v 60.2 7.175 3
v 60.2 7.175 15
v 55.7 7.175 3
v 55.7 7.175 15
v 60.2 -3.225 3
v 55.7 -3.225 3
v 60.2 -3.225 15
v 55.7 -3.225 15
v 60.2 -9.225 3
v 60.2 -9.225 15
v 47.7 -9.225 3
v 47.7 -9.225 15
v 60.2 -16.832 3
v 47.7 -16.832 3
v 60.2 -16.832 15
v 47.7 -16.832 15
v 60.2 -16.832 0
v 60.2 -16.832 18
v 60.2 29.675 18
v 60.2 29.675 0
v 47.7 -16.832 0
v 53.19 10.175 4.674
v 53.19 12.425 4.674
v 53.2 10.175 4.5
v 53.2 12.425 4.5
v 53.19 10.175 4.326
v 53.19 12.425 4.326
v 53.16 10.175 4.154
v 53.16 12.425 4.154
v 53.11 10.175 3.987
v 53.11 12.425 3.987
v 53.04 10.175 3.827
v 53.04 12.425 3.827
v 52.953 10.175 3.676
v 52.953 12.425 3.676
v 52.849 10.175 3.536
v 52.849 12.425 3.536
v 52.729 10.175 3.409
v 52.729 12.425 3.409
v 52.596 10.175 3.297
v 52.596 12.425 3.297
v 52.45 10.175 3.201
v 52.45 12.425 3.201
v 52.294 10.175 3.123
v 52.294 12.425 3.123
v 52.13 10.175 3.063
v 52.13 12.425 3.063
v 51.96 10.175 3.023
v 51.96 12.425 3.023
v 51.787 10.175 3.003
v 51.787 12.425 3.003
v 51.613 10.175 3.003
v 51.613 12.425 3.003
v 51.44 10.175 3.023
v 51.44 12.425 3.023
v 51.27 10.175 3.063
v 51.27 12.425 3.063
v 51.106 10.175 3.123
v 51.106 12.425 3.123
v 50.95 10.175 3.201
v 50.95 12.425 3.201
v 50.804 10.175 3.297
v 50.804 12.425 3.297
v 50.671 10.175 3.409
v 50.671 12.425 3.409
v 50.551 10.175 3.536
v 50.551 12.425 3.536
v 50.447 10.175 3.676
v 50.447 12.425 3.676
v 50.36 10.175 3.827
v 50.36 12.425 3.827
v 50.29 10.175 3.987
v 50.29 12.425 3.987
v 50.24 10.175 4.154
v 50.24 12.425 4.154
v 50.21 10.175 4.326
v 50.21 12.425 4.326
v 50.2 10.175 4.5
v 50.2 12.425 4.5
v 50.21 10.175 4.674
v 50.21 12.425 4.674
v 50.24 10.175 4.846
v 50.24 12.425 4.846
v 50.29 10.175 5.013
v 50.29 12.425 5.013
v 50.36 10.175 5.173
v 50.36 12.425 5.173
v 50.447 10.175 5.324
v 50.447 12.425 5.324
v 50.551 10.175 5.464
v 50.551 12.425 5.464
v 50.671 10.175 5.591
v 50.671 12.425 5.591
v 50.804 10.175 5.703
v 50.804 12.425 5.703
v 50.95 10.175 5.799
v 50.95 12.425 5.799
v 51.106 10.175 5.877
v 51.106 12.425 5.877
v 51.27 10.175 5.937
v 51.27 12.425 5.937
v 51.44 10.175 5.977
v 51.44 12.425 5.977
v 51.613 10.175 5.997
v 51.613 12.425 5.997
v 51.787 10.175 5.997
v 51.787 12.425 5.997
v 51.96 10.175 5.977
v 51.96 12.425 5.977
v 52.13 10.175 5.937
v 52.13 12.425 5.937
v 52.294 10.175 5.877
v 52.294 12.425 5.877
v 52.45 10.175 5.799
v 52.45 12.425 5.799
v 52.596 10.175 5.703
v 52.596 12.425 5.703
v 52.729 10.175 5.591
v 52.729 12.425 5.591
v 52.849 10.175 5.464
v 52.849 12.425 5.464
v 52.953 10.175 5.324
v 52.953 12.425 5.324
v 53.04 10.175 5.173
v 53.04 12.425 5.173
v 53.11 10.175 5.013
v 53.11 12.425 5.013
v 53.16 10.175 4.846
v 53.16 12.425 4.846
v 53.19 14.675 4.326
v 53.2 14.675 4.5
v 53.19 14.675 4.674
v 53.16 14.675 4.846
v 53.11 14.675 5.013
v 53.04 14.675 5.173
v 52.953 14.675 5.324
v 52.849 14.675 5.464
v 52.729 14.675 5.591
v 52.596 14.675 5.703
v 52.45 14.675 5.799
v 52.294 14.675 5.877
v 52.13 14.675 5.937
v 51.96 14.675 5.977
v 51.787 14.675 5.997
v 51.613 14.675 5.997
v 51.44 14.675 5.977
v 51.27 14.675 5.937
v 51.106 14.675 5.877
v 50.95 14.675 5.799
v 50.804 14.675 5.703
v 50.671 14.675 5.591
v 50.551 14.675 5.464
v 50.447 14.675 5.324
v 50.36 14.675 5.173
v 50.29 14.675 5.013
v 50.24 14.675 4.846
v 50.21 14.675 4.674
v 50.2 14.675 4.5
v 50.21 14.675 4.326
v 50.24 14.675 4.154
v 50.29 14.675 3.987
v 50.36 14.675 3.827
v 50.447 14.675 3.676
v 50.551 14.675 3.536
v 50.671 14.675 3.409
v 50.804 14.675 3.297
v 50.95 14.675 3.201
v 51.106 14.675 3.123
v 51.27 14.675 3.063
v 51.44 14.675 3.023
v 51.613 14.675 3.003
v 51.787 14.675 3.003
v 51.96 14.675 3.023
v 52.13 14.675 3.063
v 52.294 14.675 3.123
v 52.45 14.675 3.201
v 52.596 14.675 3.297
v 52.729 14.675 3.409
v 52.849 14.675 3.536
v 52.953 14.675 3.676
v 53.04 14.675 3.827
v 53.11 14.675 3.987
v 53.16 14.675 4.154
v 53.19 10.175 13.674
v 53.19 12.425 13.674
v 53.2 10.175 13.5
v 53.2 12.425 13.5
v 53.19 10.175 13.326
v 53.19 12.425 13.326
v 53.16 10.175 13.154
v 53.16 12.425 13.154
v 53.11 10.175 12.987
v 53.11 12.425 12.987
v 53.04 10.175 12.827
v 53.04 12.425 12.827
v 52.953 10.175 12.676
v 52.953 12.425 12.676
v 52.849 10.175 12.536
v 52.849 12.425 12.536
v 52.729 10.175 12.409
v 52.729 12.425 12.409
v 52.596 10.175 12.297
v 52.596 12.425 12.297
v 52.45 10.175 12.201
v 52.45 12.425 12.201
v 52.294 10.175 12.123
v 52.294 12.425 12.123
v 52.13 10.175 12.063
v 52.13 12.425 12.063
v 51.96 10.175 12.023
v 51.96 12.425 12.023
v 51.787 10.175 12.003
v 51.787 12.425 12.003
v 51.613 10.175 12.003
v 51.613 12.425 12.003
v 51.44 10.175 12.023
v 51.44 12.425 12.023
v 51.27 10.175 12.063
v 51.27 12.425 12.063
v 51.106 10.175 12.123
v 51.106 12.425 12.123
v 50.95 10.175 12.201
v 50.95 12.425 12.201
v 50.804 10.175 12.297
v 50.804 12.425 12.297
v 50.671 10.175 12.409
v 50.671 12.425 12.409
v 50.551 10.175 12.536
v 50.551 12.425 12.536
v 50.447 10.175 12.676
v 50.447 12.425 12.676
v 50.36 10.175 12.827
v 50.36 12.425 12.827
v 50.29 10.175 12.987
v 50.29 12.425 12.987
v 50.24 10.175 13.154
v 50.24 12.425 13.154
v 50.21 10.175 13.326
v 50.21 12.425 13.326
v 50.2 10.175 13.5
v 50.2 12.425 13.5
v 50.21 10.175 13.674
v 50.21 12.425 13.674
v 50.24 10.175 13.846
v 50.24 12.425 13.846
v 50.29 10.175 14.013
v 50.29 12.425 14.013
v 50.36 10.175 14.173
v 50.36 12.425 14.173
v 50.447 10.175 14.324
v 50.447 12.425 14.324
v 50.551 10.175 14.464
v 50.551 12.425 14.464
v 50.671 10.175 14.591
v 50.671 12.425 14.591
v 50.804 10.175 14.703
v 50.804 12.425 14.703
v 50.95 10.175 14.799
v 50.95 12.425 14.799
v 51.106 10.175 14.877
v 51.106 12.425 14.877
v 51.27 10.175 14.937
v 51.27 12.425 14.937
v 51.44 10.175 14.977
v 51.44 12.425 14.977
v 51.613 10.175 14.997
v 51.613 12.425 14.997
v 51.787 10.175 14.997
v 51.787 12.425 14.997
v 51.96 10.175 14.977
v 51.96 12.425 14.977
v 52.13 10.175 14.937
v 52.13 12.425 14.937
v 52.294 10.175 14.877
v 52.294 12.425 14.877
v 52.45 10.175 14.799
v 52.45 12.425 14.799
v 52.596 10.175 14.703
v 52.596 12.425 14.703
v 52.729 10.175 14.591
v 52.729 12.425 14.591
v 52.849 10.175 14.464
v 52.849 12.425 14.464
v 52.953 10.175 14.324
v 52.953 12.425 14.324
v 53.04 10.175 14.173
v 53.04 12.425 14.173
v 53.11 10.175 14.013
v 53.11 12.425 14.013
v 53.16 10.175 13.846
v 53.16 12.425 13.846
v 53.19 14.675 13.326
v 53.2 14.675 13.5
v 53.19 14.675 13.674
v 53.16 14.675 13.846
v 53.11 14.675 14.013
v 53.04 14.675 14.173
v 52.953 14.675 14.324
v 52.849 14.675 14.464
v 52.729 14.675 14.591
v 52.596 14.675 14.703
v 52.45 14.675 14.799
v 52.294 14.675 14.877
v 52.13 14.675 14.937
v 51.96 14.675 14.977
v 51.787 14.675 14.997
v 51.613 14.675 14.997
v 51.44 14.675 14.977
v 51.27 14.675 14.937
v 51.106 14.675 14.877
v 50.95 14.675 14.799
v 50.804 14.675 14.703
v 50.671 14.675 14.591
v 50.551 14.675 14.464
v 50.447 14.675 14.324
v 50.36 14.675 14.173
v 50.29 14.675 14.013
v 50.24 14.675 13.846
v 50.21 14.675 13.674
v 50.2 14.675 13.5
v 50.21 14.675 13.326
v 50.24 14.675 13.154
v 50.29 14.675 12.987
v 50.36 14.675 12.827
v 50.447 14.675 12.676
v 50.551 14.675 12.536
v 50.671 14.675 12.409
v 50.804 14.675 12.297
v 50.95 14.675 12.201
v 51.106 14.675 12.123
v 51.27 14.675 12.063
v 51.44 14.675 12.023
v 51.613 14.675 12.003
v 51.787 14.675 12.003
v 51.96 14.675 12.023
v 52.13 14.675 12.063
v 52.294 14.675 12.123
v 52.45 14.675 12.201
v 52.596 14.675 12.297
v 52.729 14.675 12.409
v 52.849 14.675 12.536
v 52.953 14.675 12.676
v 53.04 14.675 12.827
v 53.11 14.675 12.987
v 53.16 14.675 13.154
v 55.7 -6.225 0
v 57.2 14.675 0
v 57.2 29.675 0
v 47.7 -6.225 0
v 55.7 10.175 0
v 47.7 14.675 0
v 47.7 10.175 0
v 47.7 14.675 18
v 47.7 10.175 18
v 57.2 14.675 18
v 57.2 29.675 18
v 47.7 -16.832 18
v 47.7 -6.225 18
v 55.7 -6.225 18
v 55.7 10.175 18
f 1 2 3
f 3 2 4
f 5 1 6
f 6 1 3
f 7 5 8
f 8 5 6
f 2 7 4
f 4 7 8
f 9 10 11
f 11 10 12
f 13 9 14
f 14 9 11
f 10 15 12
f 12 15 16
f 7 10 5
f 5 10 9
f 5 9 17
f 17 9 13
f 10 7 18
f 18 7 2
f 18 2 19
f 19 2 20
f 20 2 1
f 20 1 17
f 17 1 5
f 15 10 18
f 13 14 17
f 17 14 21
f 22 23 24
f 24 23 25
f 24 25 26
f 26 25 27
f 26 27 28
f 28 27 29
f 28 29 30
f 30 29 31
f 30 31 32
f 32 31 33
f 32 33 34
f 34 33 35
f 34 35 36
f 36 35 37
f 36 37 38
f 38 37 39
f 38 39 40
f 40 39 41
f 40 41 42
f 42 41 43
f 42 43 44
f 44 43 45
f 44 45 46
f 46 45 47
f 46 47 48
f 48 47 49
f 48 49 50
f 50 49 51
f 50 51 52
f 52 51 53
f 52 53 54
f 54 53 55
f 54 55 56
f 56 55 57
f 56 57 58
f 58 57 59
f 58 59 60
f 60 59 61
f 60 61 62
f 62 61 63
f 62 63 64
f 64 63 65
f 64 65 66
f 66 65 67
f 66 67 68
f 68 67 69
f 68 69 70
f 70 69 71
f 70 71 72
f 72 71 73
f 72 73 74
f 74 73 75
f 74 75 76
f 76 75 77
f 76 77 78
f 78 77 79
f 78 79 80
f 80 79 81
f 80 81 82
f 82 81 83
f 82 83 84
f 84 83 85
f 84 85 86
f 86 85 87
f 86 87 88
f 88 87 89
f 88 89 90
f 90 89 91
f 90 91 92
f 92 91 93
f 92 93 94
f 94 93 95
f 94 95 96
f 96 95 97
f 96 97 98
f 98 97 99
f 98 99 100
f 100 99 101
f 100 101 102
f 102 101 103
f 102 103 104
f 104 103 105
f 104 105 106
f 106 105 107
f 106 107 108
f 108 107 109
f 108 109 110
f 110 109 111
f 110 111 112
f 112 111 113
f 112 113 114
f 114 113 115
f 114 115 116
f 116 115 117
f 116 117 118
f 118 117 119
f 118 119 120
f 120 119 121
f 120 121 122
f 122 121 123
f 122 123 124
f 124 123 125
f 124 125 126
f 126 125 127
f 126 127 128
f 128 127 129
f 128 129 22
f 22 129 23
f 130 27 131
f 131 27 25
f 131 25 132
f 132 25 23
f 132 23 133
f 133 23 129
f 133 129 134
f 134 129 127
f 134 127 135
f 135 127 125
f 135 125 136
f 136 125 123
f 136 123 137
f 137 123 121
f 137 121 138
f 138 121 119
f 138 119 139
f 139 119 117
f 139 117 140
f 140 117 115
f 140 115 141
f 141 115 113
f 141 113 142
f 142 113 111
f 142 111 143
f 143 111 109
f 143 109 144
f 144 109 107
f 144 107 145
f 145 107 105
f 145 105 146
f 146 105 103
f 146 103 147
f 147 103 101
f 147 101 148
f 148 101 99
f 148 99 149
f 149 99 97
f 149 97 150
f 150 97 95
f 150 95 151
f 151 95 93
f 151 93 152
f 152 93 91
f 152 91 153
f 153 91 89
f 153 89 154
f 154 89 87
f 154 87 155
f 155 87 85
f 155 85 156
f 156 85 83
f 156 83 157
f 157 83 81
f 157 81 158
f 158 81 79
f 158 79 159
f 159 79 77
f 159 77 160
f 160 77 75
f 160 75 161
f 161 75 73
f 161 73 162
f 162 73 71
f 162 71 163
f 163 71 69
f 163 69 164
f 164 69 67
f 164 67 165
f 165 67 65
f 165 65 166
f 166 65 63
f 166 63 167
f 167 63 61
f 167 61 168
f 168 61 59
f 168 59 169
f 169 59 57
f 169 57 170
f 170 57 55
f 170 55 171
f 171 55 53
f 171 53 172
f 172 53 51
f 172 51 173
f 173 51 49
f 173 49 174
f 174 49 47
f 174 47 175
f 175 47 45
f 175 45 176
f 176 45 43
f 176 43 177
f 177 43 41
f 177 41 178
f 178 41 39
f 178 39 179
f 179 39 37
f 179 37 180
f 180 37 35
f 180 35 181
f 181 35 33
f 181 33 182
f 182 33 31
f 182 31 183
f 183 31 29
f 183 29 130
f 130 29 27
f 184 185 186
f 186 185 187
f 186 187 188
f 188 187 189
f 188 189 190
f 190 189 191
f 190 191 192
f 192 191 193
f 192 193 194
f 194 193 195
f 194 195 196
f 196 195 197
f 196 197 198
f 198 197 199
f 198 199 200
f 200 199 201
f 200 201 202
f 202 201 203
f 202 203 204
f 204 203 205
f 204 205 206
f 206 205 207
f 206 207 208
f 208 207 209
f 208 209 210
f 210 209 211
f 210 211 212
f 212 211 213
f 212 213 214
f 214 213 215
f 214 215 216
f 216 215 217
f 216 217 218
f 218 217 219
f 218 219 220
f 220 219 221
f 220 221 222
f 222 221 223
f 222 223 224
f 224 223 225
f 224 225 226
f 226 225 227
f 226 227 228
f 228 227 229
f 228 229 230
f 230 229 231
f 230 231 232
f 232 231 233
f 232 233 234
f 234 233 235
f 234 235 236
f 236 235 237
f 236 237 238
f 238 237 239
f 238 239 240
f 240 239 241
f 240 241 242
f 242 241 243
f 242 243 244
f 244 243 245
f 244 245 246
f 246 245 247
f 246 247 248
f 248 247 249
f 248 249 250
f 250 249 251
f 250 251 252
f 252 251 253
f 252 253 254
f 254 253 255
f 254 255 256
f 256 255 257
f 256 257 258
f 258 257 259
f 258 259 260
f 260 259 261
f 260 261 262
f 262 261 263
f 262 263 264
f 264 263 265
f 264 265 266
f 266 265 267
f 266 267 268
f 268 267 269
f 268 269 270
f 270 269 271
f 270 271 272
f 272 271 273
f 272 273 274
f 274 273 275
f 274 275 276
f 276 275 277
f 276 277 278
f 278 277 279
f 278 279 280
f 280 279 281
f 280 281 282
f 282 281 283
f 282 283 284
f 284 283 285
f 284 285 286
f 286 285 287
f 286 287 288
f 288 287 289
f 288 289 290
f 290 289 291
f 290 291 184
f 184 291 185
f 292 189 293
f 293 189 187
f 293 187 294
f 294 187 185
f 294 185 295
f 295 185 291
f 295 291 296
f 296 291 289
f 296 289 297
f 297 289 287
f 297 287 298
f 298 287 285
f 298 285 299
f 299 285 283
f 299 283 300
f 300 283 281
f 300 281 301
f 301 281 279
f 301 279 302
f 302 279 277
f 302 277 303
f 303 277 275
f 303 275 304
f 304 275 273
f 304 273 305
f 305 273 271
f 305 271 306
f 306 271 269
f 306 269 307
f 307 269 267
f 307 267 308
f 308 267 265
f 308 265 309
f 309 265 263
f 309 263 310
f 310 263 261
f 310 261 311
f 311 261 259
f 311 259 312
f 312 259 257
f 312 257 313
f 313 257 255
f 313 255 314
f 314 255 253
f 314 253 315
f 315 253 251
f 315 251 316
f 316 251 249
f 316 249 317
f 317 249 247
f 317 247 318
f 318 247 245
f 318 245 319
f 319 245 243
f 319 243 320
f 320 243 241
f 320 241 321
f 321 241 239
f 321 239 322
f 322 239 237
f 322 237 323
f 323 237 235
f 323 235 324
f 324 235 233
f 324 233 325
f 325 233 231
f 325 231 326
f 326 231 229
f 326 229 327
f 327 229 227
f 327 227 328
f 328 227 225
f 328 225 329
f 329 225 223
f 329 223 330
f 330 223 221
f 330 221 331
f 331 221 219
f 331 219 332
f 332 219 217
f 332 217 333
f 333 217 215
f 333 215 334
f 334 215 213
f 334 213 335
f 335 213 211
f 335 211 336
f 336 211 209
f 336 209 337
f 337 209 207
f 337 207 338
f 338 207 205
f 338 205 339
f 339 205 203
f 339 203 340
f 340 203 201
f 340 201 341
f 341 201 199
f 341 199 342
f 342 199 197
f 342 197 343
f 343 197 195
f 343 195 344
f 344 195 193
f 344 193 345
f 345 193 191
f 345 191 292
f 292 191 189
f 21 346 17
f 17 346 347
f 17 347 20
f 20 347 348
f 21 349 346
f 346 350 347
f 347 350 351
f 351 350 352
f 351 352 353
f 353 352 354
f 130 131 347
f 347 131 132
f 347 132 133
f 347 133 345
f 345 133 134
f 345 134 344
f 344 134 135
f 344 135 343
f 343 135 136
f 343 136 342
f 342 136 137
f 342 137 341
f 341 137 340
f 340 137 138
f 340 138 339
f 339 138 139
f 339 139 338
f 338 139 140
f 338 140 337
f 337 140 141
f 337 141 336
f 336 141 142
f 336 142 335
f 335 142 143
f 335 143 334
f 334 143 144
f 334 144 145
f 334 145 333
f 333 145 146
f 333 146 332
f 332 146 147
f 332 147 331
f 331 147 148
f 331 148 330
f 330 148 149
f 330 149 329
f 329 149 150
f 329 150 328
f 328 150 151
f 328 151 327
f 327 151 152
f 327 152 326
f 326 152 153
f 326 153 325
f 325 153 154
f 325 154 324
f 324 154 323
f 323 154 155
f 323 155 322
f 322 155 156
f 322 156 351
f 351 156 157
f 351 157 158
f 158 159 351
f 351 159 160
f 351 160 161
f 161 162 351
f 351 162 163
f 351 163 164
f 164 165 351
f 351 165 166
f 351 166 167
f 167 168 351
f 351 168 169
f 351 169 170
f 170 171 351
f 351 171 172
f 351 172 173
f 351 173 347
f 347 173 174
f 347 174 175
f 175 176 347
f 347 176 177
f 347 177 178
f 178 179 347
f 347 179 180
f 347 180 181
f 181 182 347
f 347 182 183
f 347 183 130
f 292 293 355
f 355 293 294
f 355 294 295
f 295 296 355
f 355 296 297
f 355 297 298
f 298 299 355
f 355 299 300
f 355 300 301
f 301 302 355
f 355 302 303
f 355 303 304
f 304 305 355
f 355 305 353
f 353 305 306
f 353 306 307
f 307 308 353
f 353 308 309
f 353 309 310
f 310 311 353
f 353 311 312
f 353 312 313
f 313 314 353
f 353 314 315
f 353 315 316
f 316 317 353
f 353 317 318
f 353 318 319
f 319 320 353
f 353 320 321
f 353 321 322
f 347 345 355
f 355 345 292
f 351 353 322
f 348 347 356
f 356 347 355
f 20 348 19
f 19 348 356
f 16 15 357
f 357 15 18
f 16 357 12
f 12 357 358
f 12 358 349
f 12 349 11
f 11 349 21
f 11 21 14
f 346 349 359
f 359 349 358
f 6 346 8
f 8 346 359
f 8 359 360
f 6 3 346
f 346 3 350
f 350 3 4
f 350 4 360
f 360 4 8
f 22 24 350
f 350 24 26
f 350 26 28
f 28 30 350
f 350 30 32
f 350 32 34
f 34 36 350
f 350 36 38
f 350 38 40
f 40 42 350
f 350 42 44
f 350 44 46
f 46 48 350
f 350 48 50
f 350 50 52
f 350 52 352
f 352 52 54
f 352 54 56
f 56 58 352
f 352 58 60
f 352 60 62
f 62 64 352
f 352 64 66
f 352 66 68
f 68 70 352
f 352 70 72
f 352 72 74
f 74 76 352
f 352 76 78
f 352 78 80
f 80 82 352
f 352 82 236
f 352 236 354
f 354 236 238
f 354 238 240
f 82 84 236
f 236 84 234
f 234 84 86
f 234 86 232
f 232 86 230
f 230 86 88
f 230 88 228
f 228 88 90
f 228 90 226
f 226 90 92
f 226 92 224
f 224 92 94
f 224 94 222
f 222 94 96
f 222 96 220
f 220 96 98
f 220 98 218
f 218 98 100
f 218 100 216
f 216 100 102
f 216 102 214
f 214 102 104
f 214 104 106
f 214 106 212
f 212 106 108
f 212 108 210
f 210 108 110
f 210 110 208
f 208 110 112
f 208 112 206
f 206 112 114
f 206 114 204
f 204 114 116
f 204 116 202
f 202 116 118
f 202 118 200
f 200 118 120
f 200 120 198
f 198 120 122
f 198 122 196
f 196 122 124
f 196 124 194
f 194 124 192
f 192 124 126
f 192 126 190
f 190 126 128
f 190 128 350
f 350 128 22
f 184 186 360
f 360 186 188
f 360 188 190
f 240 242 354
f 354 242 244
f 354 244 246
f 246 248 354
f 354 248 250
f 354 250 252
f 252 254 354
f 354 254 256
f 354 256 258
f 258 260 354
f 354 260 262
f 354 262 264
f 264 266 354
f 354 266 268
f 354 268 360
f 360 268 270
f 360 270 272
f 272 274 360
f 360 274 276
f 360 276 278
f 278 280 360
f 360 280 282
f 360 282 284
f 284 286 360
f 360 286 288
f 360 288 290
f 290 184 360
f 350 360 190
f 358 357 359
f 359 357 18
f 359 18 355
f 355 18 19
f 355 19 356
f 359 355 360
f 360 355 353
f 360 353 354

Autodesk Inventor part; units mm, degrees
ref_plane "YZ Plane" through (0, 0, 0) normal (1, 0, 0) x (0, 1, 0)
ref_plane "XZ Plane" through (0, 0, 0) normal (0, 1, 0) x (-1, 0, 0)
ref_plane "XY Plane" through (0, 0, 0) normal (0, 0, 1) x (1, 0, 0)
sketch "Sketch1" plane through (0, 0, 0) normal (0, 0, 1) x (1, 0, 0)
  line L0 (47.7, 10.1753) -> (55.7, 10.1753)
  line L1 (55.7, -6.2247) -> (47.7, -6.2247)
  line L2 (47.7, -33.2316) -> (55.7, -33.2316)
  line L3 (55.7, -33.2316) -> (55.7, -16.8316)
  line L4 (55.7, -16.8316) -> (47.7, -16.8316)
  line L5 (60.2, -37.7316) -> (47.7, -37.7316)
  line L6 (60.2, -37.7316) -> (60.2, 14.6753)
  line L7 (55.7, -6.2247) -> (55.7, 10.1753)
  line L8 (47.7, 14.6753) -> (57.2, 14.6753)
  line L9 (47.7, -33.2316) -> (47.7, -37.7316)
  line L10 (47.7, 14.6753) -> (47.7, 10.1753)
  line L11 (47.7, -6.2247) -> (47.7, -16.8316)
  line L12 (60.2, 14.6753) -> (60.2, 29.6753)
  line L13 (60.2, 29.6753) -> (57.2, 29.6753)
  line L14 (57.2, 29.6753) -> (57.2, 14.6753)
extrude "Extrusion1" add sketch "Sketch1" along normal blind 18
sketch "Sketch2" plane through (0, 0, 18) normal (0, 0, 1) x (1, 0, 0)
  line L0 (60.2, 29.6753) -> (60.2, -37.7316) construction
  line L1 (47.7, -37.7316) -> (47.7, -33.2316) construction
  line L2 (60.2, -16.8316) -> (47.7, -16.8316)
  line L3 (47.7, -16.8316) -> (47.7, -37.7316)
  line L4 (47.7, -37.7316) -> (60.2, -37.7316)
  line L5 (60.2, -37.7316) -> (60.2, -16.8316)
  point P0 (0, 0)
extrude "Extrusion2" cut sketch "Sketch2" against normal blind 18
sketch "Sketch3" plane through (47.7, 14.6753, 0) normal (0, 1, 0) x (1, 0, 0)
  circle A0 centre (4, -4.5) radius 1.5
  circle A1 centre (4, -13.5) radius 1.5
  point P0 (-47.7, 0)
extrude "Extrusion3" cut sketch "Sketch3" against normal blind 4.5
sketch "Sketch4" plane through (47.7, -16.8316, 0) normal (-1, 0, 0) x (0, 0, 1)
  line L0 (0, 0) -> (18, 0) construction
  line L1 (15, 7.6069) -> (15, 0)
  line L2 (3, 0) -> (3, 7.6069)
  line L3 (3, 7.6069) -> (15, 7.6069)
  line L4 (3, 0) -> (15, 0)
  point P0 (0, 16.8316)
extrude "Extrusion4" cut sketch "Sketch4" against normal blind 20
sketch "Sketch5" plane through (55.7, -6.2247, 0) normal (-1, 0, 0) x (0, 0, 1)
  line L0 (0, 0) -> (0, 16.4) construction
  line L1 (0, 0) -> (18, 0) construction
  line L2 (18, 16.4) -> (18, 0) construction
  line L3 (0, 16.4) -> (18, 16.4) construction
  line L4 (3, 13.4) -> (3, 3)
  line L5 (3, 3) -> (15, 3)
  line L6 (15, 3) -> (15, 13.4)
  line L7 (15, 13.4) -> (3, 13.4)
  point P0 (0, 6.2247)
  dimension "d17" = 3
extrude "Extrusion5" cut sketch "Sketch5" against normal up to next
properties part number "pixyCam_mount"
